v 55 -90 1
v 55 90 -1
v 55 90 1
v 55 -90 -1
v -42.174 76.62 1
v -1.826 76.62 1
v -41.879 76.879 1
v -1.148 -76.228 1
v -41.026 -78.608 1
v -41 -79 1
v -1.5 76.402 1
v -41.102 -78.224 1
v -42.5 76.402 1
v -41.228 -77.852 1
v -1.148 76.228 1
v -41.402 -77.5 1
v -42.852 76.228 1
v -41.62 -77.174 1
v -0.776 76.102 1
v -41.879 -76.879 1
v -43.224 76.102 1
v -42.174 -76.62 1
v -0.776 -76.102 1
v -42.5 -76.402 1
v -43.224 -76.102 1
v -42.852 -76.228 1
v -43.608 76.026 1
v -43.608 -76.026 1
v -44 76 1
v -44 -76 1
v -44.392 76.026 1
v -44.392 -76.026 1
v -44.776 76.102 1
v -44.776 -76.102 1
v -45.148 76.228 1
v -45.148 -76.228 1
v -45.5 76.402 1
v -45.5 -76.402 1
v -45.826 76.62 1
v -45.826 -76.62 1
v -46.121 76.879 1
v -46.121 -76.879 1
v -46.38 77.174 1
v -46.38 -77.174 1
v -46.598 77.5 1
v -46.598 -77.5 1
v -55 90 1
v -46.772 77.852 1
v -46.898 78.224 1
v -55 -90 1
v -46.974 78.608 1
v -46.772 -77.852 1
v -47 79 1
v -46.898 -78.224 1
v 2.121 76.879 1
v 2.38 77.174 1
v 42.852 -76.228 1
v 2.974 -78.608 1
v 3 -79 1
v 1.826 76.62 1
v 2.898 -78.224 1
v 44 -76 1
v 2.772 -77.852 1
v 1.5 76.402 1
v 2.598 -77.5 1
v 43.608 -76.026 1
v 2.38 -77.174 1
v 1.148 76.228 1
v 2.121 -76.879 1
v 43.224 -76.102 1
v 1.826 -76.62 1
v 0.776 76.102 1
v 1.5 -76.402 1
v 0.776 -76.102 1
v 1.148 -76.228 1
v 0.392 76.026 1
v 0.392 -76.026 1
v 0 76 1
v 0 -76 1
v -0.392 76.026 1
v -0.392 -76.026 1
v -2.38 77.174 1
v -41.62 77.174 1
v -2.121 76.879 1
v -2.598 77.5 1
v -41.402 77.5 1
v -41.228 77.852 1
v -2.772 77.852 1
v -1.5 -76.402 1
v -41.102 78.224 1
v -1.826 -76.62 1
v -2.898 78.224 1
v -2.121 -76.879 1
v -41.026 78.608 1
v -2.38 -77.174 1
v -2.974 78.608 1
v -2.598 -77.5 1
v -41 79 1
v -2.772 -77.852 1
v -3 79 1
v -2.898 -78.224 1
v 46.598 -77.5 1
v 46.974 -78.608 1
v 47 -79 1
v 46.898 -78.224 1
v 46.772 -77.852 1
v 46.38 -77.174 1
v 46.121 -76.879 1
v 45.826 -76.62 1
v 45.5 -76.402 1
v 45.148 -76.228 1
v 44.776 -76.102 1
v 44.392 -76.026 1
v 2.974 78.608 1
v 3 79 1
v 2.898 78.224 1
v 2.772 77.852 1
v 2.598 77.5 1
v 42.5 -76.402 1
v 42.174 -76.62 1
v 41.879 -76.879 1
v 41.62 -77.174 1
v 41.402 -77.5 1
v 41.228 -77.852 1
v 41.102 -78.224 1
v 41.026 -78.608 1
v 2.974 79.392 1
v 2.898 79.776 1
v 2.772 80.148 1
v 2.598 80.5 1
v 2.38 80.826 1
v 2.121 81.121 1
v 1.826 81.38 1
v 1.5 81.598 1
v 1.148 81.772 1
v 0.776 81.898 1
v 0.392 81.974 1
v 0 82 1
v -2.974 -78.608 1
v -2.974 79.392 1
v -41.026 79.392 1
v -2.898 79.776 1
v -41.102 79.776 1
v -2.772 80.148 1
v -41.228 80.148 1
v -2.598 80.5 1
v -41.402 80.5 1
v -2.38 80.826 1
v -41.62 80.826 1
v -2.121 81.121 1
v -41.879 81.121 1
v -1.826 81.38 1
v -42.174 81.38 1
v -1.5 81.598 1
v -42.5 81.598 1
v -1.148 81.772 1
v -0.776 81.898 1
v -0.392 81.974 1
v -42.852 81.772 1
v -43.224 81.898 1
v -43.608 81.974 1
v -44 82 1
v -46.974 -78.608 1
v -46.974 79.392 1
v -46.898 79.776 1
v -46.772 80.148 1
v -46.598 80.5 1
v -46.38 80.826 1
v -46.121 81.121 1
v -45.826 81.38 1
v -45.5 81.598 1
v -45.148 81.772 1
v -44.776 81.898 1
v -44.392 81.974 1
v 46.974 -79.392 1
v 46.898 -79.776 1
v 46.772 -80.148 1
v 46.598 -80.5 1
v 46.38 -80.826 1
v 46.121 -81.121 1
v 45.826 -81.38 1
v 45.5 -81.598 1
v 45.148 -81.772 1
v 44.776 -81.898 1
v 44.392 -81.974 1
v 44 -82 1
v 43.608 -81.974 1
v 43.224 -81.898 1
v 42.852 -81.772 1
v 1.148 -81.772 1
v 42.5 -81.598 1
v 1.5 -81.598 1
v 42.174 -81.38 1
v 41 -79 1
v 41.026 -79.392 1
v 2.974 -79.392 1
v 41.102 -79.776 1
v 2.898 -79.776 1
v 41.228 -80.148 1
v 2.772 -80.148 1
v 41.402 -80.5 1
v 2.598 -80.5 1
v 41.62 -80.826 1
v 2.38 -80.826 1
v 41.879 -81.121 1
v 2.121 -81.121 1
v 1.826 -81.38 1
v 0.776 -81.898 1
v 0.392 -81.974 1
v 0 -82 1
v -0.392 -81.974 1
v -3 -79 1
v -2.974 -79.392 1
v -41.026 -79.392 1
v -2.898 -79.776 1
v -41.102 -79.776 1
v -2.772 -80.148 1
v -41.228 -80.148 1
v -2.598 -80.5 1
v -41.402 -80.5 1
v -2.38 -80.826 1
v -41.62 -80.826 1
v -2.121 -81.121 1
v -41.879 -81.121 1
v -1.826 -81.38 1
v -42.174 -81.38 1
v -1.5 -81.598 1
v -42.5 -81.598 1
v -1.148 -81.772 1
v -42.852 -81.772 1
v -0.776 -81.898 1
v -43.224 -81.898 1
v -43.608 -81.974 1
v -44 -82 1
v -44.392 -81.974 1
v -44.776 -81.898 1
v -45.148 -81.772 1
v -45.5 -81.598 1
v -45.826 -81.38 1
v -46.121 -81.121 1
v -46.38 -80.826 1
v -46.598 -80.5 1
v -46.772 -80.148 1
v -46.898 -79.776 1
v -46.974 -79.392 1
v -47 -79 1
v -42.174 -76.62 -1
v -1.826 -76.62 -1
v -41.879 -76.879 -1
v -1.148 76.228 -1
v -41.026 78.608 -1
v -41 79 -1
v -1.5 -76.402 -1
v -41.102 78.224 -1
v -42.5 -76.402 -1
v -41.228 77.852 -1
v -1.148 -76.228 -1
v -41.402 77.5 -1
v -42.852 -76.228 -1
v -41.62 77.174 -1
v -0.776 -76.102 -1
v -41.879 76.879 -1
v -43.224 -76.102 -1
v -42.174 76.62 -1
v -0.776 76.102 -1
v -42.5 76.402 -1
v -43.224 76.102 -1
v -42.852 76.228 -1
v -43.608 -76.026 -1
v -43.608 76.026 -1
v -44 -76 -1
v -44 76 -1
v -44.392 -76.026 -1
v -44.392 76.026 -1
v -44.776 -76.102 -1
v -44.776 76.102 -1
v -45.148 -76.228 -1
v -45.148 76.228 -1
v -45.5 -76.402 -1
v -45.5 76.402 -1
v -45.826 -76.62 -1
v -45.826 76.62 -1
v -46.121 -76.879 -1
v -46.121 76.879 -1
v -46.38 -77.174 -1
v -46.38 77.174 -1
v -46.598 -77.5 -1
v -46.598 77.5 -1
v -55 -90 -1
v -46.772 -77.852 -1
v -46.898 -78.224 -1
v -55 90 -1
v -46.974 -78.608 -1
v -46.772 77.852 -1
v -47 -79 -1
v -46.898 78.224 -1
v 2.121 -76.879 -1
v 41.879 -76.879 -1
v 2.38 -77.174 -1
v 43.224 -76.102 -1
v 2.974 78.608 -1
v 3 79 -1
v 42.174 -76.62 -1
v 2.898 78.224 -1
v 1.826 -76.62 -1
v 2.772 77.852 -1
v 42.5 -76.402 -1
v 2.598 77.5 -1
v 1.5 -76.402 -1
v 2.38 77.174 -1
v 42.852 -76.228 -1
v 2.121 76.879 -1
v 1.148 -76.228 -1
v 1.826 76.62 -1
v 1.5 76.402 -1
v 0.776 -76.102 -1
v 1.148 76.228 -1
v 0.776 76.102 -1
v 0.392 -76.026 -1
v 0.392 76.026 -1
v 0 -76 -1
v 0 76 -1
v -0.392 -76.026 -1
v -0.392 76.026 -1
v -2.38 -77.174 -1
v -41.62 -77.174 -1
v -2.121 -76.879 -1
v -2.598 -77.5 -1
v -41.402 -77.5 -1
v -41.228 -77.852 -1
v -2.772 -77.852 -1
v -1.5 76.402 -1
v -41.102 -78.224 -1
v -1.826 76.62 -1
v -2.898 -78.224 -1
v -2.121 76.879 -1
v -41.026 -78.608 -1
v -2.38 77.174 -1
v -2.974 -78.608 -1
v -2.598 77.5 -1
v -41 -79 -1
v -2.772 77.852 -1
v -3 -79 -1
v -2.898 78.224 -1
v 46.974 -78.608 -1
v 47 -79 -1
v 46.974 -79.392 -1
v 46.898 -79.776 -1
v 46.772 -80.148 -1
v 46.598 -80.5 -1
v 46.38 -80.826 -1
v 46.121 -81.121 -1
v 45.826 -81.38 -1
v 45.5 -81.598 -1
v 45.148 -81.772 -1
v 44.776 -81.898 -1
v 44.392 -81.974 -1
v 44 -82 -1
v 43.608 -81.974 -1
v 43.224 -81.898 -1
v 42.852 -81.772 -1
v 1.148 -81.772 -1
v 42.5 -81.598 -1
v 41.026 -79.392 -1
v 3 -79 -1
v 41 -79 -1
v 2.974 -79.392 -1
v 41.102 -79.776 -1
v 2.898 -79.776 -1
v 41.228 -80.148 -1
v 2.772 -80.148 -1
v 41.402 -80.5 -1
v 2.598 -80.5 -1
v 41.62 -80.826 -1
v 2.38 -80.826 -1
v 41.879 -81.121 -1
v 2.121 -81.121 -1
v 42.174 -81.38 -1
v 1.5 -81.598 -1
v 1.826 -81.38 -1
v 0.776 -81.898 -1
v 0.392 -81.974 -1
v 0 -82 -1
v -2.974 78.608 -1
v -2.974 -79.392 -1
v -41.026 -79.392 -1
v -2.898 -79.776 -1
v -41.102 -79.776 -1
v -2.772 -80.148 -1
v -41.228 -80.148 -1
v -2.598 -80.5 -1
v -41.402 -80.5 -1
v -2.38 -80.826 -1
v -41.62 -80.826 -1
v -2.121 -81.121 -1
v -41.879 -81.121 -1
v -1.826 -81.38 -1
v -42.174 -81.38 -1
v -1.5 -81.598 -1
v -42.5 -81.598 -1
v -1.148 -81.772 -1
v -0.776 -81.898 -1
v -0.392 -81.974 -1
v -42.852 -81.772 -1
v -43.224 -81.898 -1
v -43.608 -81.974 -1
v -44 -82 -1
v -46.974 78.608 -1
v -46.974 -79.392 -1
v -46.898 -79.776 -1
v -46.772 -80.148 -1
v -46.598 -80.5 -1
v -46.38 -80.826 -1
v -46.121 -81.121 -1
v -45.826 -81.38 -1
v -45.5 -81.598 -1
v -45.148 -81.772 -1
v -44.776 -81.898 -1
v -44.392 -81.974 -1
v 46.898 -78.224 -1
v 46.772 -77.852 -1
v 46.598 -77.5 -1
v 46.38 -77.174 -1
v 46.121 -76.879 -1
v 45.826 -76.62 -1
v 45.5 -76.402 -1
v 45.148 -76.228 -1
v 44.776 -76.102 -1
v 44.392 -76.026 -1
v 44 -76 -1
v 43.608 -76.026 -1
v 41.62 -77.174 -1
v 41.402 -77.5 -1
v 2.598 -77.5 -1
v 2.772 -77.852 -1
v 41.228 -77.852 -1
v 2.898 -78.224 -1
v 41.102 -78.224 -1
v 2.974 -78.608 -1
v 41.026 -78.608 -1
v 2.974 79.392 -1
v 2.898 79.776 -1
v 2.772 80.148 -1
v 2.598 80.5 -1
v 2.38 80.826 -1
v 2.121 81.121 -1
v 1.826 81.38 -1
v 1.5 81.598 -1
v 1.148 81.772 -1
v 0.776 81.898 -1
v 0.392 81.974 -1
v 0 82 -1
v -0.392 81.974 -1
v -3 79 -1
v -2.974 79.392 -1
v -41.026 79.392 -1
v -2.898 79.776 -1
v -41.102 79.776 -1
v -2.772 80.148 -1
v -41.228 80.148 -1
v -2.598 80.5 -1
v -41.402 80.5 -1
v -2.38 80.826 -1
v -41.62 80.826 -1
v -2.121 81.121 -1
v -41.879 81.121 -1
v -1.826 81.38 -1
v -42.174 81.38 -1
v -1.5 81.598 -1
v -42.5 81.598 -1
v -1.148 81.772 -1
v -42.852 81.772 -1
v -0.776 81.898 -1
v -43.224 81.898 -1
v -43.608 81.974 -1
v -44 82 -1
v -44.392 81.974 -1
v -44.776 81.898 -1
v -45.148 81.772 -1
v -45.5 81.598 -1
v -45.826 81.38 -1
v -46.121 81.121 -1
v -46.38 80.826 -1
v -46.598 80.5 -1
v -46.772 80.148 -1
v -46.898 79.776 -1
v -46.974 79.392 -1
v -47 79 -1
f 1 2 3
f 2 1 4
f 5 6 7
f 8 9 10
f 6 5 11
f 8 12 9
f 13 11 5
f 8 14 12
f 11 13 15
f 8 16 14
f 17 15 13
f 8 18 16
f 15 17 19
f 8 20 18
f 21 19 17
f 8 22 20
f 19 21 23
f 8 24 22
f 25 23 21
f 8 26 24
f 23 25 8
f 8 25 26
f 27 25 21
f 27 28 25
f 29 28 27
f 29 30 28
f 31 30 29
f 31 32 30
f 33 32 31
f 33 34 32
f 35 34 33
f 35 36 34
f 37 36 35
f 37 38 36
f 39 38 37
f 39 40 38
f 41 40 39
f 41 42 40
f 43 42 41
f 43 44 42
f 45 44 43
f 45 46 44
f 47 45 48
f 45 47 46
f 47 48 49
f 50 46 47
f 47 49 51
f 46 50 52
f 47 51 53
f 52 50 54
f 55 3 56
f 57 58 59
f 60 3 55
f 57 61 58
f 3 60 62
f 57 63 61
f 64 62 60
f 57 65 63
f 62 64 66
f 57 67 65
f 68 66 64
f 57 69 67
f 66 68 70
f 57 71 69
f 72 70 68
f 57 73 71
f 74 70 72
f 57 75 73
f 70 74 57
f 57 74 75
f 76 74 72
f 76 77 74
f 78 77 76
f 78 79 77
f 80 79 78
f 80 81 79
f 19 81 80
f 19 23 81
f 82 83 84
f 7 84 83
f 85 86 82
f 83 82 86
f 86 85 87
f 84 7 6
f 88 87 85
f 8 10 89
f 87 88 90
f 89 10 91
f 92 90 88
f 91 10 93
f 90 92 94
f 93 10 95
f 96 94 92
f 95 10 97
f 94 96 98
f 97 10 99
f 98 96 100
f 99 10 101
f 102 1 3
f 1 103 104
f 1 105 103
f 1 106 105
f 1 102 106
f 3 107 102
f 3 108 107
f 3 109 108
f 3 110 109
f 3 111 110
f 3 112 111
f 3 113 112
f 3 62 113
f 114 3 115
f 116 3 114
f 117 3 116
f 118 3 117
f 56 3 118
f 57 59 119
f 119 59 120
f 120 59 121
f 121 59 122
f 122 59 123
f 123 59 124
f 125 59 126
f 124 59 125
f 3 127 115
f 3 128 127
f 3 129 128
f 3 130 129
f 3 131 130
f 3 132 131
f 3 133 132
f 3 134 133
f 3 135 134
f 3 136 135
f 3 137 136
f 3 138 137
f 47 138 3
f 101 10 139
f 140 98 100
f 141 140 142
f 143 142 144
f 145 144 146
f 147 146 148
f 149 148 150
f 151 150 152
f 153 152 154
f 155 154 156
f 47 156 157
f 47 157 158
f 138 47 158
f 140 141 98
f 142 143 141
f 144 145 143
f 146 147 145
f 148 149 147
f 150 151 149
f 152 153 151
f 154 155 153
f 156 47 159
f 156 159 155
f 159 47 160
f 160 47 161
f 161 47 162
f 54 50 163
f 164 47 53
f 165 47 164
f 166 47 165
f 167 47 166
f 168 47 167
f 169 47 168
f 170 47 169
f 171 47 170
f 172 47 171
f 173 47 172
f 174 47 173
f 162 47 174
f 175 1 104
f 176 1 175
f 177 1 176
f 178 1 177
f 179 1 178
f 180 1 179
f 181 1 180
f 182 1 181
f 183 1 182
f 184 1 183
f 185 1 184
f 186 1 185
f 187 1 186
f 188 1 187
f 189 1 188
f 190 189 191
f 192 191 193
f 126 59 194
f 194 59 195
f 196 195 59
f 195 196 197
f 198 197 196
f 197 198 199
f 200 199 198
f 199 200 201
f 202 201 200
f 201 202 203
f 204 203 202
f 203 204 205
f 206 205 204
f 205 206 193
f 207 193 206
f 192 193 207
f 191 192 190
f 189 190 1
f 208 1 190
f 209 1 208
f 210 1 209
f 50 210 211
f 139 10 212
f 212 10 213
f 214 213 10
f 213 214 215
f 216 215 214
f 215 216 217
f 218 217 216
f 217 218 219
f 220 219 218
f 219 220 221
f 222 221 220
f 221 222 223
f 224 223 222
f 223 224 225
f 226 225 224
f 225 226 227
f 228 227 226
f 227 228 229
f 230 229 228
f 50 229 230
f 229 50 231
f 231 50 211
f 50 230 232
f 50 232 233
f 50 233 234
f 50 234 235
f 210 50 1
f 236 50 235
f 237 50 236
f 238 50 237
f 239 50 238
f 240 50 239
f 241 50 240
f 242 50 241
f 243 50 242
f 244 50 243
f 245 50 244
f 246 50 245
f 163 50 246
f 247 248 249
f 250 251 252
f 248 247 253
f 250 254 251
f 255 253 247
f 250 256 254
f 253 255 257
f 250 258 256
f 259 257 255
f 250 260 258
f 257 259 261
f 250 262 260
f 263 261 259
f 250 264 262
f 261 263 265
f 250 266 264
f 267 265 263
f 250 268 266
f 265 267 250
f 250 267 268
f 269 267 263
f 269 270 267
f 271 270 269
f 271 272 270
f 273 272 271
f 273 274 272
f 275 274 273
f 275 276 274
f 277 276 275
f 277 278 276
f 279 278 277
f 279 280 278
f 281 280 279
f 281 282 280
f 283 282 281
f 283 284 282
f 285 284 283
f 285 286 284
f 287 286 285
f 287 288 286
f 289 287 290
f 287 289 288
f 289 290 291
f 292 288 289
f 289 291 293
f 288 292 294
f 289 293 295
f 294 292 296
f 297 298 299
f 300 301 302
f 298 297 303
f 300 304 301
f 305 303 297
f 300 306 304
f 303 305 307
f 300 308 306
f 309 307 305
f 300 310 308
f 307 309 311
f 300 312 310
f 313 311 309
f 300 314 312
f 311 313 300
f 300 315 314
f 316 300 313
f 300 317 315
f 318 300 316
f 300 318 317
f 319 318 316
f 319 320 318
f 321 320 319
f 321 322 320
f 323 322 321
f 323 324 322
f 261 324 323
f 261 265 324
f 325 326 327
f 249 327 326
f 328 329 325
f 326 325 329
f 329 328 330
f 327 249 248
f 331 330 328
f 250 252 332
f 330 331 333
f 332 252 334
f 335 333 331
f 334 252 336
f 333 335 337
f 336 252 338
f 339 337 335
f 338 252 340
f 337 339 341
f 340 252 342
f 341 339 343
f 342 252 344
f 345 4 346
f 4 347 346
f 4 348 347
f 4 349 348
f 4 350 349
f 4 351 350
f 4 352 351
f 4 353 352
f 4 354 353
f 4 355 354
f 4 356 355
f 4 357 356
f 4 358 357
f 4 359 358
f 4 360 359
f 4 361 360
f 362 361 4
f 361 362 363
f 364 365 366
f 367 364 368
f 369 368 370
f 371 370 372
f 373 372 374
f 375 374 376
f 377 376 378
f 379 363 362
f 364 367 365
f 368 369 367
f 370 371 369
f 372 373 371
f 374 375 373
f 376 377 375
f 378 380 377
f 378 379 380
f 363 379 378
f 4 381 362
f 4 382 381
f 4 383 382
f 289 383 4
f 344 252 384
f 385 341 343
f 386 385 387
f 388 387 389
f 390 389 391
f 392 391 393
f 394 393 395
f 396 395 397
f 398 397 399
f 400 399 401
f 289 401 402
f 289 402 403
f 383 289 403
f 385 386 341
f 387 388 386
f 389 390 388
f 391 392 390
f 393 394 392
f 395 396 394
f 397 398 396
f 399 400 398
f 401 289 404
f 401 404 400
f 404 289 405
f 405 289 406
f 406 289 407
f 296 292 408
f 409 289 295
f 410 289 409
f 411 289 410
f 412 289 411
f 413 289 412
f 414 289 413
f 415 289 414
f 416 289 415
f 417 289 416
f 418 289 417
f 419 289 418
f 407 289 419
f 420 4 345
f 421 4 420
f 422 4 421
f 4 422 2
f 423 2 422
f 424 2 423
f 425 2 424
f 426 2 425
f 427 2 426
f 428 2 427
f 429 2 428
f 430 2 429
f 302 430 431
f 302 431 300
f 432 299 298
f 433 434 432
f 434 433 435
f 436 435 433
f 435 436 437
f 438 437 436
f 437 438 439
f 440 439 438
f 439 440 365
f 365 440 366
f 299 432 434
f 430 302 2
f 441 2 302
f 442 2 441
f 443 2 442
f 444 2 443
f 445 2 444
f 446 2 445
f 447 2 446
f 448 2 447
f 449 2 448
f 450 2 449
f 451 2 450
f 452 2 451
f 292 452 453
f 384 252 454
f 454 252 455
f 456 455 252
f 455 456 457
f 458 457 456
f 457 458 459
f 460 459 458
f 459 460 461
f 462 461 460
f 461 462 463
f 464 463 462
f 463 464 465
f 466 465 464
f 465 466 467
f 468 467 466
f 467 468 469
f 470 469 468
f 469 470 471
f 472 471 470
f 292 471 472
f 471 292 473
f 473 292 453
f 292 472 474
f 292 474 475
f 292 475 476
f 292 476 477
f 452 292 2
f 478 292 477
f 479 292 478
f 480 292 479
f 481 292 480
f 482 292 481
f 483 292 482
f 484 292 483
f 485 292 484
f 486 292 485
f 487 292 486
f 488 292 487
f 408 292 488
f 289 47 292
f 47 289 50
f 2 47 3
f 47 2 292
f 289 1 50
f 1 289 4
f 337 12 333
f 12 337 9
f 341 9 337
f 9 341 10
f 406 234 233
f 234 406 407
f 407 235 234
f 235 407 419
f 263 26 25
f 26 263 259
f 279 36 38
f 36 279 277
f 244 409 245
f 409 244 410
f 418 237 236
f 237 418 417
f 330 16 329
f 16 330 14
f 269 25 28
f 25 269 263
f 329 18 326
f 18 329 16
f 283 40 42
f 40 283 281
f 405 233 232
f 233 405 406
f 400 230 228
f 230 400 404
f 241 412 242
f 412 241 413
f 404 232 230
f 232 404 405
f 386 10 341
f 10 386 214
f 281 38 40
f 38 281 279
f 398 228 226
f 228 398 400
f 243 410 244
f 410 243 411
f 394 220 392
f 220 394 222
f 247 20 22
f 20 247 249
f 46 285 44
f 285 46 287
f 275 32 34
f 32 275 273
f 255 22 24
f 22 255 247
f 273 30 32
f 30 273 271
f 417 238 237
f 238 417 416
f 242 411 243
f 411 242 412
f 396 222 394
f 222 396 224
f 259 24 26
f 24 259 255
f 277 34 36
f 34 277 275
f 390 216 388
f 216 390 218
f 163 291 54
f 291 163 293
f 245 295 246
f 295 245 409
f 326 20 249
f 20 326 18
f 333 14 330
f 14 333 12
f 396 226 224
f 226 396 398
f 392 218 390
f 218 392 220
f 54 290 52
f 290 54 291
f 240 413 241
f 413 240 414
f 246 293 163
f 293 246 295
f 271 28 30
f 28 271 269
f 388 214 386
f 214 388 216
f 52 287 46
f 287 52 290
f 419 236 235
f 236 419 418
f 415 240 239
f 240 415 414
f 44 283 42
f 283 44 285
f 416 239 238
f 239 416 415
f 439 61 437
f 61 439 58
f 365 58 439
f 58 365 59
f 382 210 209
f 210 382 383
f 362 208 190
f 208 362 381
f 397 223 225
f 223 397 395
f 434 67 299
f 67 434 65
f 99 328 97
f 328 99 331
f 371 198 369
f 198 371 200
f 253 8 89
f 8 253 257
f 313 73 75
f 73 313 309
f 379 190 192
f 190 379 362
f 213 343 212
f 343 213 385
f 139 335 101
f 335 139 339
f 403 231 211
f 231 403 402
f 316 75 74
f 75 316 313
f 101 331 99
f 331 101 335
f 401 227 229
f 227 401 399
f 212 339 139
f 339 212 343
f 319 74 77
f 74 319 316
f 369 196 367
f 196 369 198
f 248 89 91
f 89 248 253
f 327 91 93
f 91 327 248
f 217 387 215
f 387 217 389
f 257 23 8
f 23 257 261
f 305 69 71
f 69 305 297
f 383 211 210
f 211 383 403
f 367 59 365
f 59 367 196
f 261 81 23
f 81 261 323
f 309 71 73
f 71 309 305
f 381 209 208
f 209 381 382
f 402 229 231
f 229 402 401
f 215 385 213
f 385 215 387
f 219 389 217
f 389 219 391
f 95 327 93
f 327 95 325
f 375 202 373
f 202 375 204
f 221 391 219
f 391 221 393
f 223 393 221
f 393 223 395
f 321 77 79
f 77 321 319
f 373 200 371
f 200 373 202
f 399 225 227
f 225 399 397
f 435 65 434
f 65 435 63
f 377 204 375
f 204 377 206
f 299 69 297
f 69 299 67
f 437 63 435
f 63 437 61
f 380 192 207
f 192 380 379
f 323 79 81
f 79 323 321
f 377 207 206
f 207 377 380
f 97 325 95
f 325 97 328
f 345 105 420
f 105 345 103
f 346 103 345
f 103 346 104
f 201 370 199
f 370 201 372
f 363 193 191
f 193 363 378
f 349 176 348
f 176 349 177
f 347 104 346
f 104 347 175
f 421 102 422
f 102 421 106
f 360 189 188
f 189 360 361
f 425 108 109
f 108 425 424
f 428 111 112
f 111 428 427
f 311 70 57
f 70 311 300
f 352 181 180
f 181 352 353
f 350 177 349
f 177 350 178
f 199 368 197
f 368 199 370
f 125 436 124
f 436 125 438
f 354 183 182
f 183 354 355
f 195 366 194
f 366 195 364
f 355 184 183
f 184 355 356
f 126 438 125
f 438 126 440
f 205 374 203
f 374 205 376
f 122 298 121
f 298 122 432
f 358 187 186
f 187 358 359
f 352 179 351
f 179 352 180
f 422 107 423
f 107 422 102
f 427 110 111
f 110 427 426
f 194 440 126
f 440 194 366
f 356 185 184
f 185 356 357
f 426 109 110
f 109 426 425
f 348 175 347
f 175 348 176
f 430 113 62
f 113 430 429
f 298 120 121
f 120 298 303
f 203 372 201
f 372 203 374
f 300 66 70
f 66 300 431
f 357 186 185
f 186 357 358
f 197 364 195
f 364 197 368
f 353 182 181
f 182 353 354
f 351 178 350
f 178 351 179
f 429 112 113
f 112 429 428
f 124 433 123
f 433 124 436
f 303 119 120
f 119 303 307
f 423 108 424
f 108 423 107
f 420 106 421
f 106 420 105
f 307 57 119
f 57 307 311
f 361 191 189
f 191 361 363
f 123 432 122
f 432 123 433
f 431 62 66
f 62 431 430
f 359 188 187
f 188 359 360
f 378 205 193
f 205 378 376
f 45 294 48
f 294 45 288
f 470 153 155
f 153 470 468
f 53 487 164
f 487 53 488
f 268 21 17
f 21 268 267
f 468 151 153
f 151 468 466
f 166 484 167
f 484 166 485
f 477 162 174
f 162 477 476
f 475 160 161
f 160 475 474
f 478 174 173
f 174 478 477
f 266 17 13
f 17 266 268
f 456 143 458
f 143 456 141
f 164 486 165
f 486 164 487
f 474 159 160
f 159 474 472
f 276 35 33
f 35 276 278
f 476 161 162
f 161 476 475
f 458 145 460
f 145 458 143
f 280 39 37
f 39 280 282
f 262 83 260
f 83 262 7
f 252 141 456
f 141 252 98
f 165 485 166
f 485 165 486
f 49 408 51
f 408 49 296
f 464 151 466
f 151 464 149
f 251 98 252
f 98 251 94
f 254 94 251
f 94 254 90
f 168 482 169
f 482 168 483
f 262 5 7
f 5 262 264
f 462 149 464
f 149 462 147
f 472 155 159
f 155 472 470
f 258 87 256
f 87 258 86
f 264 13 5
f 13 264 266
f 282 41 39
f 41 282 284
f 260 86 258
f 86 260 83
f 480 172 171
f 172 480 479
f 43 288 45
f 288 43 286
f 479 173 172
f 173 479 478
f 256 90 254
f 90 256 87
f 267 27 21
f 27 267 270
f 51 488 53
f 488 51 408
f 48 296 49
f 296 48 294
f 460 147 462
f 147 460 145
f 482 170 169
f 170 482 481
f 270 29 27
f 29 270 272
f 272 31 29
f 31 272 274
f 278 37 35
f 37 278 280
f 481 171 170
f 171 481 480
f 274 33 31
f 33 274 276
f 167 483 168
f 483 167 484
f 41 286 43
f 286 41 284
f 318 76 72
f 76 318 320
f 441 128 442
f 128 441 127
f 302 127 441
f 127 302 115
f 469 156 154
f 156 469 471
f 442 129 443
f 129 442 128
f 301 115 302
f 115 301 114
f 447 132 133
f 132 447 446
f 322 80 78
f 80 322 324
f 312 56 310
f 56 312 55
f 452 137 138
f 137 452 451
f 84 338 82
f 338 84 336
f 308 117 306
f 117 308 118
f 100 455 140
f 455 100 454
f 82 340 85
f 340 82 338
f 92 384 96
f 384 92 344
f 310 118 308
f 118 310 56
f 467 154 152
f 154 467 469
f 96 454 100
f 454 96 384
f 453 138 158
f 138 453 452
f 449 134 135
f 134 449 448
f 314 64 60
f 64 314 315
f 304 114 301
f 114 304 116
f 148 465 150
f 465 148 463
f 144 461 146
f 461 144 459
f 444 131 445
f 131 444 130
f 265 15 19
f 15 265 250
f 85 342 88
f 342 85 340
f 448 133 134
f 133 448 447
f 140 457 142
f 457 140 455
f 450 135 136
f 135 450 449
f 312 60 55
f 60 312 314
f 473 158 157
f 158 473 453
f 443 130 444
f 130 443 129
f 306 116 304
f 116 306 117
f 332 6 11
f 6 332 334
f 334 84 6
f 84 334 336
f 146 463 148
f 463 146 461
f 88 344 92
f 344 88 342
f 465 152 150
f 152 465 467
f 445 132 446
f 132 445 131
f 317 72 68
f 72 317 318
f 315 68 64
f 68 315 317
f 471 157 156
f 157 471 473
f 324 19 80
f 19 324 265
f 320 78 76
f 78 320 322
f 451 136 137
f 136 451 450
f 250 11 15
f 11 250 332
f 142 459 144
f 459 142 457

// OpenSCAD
// ========================================
// a 11 x 18 x 0.2 cm plate with five 0.6 cm holes
// NeuroCAD canonical IR; dimensions are millimetres
// ========================================
$fn = 48;

difference() {
  cube(size=[110, 180, 2], center=true);
  translate([-44, -79, 0]) {
    cylinder(r=3, h=4, center=true);
  }
  translate([0, -79, 0]) {
    cylinder(r=3, h=4, center=true);
  }
  translate([44, -79, 0]) {
    cylinder(r=3, h=4, center=true);
  }
  translate([-44, 79, 0]) {
    cylinder(r=3, h=4, center=true);
  }
  translate([0, 79, 0]) {
    cylinder(r=3, h=4, center=true);
  }
}
